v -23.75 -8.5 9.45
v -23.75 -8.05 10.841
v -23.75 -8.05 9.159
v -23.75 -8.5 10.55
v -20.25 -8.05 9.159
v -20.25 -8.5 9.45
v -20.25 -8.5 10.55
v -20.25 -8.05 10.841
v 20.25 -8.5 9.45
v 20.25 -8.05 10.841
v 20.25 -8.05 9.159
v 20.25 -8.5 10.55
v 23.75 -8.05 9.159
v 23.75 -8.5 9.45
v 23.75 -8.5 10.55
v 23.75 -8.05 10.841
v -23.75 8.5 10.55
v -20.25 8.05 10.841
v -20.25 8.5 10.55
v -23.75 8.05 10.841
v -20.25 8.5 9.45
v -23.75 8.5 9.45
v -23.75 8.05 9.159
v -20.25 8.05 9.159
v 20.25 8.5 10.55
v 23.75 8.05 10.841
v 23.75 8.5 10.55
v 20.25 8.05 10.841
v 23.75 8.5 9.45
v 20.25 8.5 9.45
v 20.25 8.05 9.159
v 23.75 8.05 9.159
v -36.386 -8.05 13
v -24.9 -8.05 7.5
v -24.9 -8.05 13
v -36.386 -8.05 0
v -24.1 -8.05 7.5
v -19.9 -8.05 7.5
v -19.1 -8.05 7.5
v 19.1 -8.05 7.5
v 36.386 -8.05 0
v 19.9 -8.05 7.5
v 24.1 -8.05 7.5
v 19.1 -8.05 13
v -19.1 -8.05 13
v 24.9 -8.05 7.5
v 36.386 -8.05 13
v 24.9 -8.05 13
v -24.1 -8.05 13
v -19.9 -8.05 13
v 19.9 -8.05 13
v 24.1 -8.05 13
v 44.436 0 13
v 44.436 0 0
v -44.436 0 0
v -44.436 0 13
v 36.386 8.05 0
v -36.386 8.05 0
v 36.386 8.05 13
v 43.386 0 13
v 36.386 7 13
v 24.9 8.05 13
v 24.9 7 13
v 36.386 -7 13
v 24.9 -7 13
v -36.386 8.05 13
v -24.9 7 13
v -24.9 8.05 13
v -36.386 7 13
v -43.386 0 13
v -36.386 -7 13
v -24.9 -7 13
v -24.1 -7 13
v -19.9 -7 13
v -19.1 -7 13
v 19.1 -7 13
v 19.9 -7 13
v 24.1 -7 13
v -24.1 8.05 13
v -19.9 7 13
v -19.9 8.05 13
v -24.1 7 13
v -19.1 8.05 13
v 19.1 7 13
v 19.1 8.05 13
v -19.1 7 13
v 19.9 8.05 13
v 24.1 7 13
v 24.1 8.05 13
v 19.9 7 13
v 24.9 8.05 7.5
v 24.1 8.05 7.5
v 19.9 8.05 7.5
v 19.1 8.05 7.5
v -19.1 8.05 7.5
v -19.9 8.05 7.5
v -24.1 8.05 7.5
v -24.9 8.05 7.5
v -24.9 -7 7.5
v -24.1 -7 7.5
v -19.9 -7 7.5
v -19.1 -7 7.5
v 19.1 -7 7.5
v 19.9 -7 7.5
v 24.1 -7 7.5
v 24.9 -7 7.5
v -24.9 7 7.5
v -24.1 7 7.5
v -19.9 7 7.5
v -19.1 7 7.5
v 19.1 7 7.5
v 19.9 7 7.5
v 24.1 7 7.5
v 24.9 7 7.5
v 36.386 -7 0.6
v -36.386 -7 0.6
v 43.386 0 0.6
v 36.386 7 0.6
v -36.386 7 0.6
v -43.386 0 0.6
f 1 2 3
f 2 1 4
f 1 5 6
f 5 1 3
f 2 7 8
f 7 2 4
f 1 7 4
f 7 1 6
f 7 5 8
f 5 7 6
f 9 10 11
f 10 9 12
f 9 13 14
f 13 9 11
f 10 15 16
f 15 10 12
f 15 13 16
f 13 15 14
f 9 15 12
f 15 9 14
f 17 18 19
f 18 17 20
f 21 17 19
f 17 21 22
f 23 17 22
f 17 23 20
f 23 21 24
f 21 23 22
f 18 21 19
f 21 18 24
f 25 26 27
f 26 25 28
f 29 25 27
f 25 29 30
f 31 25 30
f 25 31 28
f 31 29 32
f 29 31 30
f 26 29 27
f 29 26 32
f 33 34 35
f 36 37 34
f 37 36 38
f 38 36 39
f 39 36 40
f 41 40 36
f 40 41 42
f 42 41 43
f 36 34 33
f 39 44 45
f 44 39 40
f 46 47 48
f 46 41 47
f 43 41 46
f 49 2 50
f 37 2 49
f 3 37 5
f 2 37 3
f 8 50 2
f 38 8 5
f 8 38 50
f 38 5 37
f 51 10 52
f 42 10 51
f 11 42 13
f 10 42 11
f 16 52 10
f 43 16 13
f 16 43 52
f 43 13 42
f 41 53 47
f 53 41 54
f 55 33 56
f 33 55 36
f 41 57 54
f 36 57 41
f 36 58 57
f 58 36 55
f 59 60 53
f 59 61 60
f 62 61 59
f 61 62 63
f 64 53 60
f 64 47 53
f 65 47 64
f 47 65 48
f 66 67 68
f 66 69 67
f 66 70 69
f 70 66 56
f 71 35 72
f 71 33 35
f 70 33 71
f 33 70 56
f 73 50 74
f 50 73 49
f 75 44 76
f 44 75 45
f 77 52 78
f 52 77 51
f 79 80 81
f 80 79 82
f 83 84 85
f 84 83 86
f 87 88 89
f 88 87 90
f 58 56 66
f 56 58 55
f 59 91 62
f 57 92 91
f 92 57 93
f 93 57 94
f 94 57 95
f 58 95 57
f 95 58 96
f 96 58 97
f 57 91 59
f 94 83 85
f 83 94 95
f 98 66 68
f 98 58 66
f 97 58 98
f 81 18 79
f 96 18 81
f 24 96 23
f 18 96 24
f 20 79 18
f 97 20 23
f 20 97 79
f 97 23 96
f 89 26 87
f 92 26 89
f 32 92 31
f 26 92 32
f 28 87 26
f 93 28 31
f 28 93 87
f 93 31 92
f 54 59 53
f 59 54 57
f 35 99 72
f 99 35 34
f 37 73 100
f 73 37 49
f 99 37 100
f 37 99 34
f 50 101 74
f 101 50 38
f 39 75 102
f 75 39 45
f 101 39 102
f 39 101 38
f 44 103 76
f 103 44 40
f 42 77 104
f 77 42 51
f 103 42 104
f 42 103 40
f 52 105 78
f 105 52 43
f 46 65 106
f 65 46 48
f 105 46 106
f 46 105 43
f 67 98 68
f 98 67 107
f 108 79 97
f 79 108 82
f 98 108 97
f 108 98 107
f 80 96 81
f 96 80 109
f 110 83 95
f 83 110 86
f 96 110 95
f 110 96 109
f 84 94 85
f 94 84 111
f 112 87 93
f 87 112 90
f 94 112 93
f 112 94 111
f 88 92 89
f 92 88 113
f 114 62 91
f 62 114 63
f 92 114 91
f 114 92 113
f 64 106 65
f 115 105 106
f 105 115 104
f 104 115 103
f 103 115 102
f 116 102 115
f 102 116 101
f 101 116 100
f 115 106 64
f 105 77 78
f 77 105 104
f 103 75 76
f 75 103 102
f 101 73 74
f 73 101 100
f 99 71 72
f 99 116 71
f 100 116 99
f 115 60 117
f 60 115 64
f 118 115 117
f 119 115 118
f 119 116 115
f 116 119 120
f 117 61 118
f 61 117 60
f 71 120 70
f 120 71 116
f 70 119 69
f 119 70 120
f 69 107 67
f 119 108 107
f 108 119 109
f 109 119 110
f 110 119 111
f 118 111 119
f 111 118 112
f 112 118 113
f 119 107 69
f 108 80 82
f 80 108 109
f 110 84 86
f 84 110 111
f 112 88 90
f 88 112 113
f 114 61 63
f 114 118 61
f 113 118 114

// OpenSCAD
// ==============================================================================
// Single White Lightguide / Diffuser Segment (Frontplate White)
// For Modular 7-Segment Clock / Scoreboard Display
// ==============================================================================
//
// Features:
// - Standalone 1-color white segment designed for rapid test-printing or replacement.
// - Print Orientation: Flat front diffuser face rests directly on the build plate (Z = 0)
//   for a flawless textured/smooth finish and ZERO supports required!
// - Hollow internal cavity channels and reflects LED light directly forward.
// - Snap-fit retention tabs with compliance flex slits lock securely into the
//   frontplate housing channels.
// - Compatible with all 7 segment positions (A, B, C, D, E, F, G) on the digit
//   (pitch_x = pitch_y_top = pitch_y_bot = 92.0 mm).
// ==============================================================================

/* [Configuration] */
part = 1; // [1:"single - 1 Segment (with snap tabs, print orientation)", 2:"single_nosnaps - 1 Segment (smooth friction fit, no snaps)", 3:"digit_set - Full set of 7 segments laid out flat on bed", 4:"cutaway - Cross-section preview"]

// Front diffuser face thickness (mm)
diffuser_thick = 0.6; // [0.4:0.1:1.2] (0.6mm = high brightness, 0.8mm = balanced diffusion)

// Snap-fit retention teeth
enable_snaps = true;

// Clearance gap around perimeter for slide-in fit (mm)
segment_clearance = 0.15; // [0.05:0.05:0.30]

/* [Segment Dimensions (matching 7segment_pogo.scad)] */
pitch_x       = 92.0;  // 92mm pitch
pitch_y_top   = 92.0;
pitch_y_bot   = 92.0;
strip_width   = 12.0;  // WS2812 LED strip width (12 mm)
white_wall    = 1.2;   // Reflector wall thickness (1.2 mm)
front_wall    = 2.0;   // Black divider wall between segments (2.0 mm)
total_depth   = 13.0;  // Total frontplate housing depth (13.0 mm)

/* [Derived Calculations] */
diffuser_w    = strip_width + 2;                   // 14.0 mm inner channel
total_seg_w   = diffuser_w + white_wall * 2;      // 16.4 mm outer width
total_seg_l   = pitch_x - front_wall * 1.4142;    // 89.17 mm outer length
diffuser_l    = total_seg_l - white_wall * 2;     // 86.77 mm inner length

eff_w         = total_seg_w - segment_clearance * 2; // 16.10 mm
eff_l         = total_seg_l - segment_clearance * 2; // 88.87 mm

$fn = 40;

// ==============================================================================
// 2D & 3D GEOMETRY MODULES
// ==============================================================================

// Classic mitered 45-degree pointy 7-segment polygon
module segment_polygon_2d(l, w) {
    polygon([
        [-l/2 + w/2, -w/2],
        [ l/2 - w/2, -w/2],
        [ l/2,        0   ],
        [ l/2 - w/2,  w/2],
        [-l/2 + w/2,  w/2],
        [-l/2,        0   ]
    ]);
}

module segment_prism(l, w, h) {
    linear_extrude(height = h)
        segment_polygon_2d(l, w);
}

// Snap teeth positioned in print orientation (Z = 0 is front face on bed)
module snap_teeth_print_orient(l = total_seg_l, w = total_seg_w) {
    tooth_w     = 3.5;
    tooth_h     = 2.2;
    tooth_reach = 0.45;
    // Positioned 3.0mm from the open rear rim (10.0mm above the bed)
    z_pos       = total_depth - 3.0;
    
    for (side = [-1, 1]) {
        for (x_pos = [-22.0, 22.0]) {
            translate([x_pos, side * (w/2 - segment_clearance), z_pos]) {
                rotate([side > 0 ? 0 : 180, 0, 0])
                    rotate([0, 90, 0])
                        linear_extrude(tooth_w, center=true)
                            polygon([
                                [-tooth_h/2, -0.4],
                                [-tooth_h/4, tooth_reach],
                                [ tooth_h/4, tooth_reach],
                                [ tooth_h/2, -0.4]
                            ]);
            }
        }
    }
}

// Flex compliance slits flanking each snap tooth
module flex_slits_print_orient(w = total_seg_w) {
    slit_w   = 0.8;
    slit_l   = 3.5;
    slit_h   = 5.5;
    z_center = total_depth - slit_h/2;
    
    for (side = [-1, 1]) {
        for (x_center = [-22.0, 22.0]) {
            for (dx = [-2.5, 2.5]) {
                translate([x_center + dx, side * (w/2 - segment_clearance), z_center + 0.1])
                    cube([slit_w, slit_l, slit_h + 0.2], center=true);
            }
        }
    }
}

// Single Segment Model (Print Orientation: Front face at Z = 0)
module single_segment_white(d_thick = diffuser_thick, snaps = enable_snaps) {
    difference() {
        union() {
            // Solid outer prism (Z = 0 to 13.0 mm)
            segment_prism(eff_l, eff_w, total_depth);
            
            // Outward snap-fit latch teeth
            if (snaps) {
                snap_teeth_print_orient(total_seg_l, total_seg_w);
            }
        }
        
        // Hollow light tunnel: leaves solid d_thick front face at Z = [0, d_thick]
        // Hollow cavity extends from Z = d_thick to the open rear at Z = 13.0+ mm
        translate([0, 0, d_thick])
            segment_prism(diffuser_l, diffuser_w, total_depth - d_thick + 1.0);
            
        // Compliance flex slits for snap teeth
        if (snaps) {
            flex_slits_print_orient(total_seg_w);
        }
    }
}

// 7 Segments Laid Out Flat on Build Plate
module digit_set_segments_print_orient(spacing_y = 20.0) {
    for (i = [0:6]) {
        translate([0, (i - 3) * spacing_y, 0])
            single_segment_white(diffuser_thick, enable_snaps);
    }
}

// Cutaway preview (cross-section along length to verify diffuser thickness)
module single_segment_cutaway() {
    difference() {
        single_segment_white(diffuser_thick, enable_snaps);
        translate([0, 15, -1])
            cube([eff_l + 10, 30, total_depth + 2], center = true);
    }
}

// ==============================================================================
// TOP-LEVEL RENDER SELECTION
// ==============================================================================
if (part == 1 || part == "single") {
    // 1 Segment with snap tabs (print-ready)
    color("White")
        single_segment_white(diffuser_thick, snaps = true);
} else if (part == 2 || part == "single_nosnaps") {
    // 1 Segment without snap tabs (friction fit)
    color("White")
        single_segment_white(diffuser_thick, snaps = false);
} else if (part == 3 || part == "digit_set") {
    // Full digit set of 7 segments flat on bed
    color("White")
        digit_set_segments_print_orient(spacing_y = 22.0);
} else if (part == 4 || part == "cutaway") {
    // Longitudinal cross-section view
    color("White")
        single_segment_cutaway();
}
